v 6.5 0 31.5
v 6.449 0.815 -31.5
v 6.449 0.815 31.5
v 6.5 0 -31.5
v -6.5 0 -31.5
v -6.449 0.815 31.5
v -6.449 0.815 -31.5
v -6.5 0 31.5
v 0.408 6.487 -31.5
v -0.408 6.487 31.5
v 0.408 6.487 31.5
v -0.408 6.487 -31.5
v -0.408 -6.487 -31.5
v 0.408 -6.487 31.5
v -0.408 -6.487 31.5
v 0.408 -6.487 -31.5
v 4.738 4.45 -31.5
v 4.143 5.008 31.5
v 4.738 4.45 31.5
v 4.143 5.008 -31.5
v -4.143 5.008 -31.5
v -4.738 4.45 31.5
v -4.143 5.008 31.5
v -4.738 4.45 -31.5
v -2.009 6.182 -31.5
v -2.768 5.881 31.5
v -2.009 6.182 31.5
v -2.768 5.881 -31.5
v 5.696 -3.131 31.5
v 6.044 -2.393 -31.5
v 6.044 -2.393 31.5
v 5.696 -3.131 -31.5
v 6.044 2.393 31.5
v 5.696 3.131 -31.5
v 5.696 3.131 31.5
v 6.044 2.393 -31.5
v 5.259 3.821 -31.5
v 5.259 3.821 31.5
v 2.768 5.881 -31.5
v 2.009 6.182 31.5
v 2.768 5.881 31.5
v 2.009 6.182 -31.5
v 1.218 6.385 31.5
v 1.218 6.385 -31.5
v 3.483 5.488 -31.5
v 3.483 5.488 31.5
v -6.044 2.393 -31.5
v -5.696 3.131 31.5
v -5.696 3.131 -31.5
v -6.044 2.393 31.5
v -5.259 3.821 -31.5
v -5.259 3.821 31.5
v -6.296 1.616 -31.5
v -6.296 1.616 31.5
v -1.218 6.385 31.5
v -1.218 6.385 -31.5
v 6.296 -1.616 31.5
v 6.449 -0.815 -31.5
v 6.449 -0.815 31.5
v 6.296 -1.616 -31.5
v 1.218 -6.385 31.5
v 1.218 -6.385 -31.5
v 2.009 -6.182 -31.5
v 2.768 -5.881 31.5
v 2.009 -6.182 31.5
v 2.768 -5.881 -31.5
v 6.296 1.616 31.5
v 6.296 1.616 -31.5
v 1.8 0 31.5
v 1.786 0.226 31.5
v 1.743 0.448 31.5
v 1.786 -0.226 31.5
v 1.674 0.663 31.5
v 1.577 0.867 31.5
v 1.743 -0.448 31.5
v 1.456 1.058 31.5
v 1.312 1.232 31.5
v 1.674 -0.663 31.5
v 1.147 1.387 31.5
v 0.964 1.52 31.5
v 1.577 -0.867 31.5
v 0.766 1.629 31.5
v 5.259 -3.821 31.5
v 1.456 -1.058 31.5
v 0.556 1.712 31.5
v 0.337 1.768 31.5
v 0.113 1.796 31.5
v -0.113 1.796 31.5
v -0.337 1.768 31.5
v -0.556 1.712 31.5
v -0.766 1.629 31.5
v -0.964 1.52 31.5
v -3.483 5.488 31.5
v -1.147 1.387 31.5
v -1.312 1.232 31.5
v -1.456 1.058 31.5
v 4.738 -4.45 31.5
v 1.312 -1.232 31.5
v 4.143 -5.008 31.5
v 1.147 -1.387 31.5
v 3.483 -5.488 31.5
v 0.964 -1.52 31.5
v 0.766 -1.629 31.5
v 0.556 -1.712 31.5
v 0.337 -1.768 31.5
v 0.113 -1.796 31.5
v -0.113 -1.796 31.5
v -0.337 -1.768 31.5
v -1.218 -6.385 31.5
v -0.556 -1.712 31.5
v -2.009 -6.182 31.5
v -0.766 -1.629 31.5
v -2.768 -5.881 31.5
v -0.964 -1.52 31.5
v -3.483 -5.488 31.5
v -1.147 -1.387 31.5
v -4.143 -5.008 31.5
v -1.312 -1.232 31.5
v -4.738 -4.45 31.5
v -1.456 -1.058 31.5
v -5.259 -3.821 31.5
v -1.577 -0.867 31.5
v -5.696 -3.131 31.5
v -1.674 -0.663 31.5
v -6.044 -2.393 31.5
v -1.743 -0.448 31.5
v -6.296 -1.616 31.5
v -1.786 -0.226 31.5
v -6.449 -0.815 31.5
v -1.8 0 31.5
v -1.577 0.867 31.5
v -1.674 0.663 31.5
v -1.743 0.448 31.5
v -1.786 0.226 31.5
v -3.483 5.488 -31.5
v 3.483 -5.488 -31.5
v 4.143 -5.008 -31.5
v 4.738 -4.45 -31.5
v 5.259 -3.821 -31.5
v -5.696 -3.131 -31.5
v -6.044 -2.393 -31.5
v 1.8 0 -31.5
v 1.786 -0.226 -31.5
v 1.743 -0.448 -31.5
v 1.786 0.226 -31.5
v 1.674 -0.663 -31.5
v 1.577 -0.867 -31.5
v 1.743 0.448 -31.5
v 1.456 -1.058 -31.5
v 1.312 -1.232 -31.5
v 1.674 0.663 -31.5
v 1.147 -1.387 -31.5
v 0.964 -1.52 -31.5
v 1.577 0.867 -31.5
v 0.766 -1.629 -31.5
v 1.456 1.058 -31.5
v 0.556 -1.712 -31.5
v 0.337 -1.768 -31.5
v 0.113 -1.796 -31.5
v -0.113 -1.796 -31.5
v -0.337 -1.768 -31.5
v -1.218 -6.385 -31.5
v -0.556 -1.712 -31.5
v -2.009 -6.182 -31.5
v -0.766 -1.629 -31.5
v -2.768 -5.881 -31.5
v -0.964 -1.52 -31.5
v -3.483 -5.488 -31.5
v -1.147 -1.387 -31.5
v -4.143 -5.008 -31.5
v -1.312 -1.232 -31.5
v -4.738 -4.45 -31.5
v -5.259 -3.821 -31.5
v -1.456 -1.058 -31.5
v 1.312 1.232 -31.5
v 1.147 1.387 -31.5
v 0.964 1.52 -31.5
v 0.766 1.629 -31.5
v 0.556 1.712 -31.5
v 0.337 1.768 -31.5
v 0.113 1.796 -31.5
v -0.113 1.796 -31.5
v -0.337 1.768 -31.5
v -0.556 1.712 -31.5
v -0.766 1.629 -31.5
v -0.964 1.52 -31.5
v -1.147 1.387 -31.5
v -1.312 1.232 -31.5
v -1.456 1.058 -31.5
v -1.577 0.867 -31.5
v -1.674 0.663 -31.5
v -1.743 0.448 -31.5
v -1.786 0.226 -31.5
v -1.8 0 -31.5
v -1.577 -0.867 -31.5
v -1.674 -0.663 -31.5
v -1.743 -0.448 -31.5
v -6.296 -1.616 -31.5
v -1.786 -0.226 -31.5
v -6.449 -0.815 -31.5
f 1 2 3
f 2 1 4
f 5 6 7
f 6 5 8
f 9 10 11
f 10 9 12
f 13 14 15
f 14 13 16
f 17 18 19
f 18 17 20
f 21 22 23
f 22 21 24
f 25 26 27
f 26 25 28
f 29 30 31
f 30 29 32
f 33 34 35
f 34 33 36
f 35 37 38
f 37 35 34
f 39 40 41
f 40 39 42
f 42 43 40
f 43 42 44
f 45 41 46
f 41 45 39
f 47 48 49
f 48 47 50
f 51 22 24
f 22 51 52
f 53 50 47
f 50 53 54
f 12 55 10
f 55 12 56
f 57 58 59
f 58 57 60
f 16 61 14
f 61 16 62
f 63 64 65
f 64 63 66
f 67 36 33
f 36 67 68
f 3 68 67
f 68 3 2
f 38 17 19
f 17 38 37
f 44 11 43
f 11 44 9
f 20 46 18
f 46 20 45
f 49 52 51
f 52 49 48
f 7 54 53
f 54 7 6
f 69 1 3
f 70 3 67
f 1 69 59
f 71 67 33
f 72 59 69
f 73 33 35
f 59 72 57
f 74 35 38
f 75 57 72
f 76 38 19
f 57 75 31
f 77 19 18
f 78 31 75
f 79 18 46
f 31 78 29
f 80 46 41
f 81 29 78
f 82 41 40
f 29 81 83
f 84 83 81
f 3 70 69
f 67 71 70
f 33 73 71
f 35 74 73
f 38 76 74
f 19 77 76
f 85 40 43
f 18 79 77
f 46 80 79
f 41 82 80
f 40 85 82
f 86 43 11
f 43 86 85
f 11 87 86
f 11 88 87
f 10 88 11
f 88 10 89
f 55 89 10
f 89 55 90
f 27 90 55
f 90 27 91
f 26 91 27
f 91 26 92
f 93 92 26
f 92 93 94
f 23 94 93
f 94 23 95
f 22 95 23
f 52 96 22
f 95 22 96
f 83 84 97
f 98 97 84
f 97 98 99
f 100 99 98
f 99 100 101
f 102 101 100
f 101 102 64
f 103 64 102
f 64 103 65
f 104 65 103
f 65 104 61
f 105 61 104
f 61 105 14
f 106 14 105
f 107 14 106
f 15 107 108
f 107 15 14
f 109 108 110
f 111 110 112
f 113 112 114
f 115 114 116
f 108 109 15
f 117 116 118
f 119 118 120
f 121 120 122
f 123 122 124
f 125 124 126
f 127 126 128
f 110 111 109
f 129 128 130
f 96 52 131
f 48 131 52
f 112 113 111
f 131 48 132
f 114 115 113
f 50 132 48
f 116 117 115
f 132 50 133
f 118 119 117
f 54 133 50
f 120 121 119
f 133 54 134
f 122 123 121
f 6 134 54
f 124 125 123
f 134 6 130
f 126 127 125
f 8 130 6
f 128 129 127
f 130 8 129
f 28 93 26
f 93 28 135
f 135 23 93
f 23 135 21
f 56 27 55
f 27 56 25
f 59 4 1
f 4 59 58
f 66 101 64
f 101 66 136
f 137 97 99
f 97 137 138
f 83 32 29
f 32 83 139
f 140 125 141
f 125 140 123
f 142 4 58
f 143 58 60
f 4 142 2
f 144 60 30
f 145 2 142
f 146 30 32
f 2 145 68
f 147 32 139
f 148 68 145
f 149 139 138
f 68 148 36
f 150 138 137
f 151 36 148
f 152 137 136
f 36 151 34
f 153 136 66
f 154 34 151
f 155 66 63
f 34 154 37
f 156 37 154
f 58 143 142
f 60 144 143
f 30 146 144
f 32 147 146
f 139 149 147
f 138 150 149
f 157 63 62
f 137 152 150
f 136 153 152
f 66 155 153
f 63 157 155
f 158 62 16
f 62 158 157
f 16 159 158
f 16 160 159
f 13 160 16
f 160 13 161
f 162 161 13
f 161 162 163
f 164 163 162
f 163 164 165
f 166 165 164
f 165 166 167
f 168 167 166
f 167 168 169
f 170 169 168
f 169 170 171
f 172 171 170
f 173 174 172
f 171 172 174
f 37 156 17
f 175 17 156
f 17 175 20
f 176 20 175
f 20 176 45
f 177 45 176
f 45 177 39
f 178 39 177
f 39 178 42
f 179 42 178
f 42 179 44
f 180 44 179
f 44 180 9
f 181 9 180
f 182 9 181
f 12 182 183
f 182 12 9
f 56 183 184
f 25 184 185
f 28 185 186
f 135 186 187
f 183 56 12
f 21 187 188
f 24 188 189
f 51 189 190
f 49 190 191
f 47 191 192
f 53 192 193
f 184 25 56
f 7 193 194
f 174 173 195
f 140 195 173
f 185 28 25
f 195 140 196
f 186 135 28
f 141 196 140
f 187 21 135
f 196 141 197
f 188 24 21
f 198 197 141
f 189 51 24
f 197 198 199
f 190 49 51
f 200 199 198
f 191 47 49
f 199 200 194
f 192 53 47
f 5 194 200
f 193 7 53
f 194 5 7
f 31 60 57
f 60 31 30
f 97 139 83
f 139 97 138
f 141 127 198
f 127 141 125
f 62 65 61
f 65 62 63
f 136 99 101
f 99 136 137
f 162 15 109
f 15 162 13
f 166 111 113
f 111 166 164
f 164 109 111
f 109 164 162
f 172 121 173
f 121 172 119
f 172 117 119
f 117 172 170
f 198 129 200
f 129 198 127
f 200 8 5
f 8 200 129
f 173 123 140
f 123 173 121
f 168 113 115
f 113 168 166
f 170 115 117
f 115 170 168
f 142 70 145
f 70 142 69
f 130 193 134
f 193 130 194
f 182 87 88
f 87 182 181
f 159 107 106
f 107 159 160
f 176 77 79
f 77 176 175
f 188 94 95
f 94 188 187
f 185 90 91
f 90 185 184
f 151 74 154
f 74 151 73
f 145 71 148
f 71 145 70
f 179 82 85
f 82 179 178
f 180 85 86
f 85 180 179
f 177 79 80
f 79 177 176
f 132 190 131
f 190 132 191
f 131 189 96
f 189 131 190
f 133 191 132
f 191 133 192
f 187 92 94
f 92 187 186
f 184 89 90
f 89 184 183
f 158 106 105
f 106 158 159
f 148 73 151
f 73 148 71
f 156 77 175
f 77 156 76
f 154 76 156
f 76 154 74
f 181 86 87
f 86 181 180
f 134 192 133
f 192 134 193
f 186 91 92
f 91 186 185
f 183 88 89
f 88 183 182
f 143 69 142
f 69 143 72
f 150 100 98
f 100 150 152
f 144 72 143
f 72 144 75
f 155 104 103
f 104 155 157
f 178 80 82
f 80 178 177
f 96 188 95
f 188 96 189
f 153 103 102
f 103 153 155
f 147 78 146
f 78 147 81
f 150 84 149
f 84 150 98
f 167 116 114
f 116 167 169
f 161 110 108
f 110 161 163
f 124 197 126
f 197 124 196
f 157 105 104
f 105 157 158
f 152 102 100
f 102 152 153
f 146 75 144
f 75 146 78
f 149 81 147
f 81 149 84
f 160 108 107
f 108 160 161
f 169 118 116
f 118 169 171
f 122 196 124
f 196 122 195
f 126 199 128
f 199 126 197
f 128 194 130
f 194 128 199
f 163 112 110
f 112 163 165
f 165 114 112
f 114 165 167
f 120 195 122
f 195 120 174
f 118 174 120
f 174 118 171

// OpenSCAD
$fn = 50;


difference() {
	union() {
		translate(v = [0, 0, -31.5000000000]) {
			cylinder(h = 63, r = 6.5000000000);
		}
	}
	union() {
		translate(v = [0, 0, -100.0000000000]) {
			cylinder(h = 200, r = 1.8000000000);
		}
	}
}
